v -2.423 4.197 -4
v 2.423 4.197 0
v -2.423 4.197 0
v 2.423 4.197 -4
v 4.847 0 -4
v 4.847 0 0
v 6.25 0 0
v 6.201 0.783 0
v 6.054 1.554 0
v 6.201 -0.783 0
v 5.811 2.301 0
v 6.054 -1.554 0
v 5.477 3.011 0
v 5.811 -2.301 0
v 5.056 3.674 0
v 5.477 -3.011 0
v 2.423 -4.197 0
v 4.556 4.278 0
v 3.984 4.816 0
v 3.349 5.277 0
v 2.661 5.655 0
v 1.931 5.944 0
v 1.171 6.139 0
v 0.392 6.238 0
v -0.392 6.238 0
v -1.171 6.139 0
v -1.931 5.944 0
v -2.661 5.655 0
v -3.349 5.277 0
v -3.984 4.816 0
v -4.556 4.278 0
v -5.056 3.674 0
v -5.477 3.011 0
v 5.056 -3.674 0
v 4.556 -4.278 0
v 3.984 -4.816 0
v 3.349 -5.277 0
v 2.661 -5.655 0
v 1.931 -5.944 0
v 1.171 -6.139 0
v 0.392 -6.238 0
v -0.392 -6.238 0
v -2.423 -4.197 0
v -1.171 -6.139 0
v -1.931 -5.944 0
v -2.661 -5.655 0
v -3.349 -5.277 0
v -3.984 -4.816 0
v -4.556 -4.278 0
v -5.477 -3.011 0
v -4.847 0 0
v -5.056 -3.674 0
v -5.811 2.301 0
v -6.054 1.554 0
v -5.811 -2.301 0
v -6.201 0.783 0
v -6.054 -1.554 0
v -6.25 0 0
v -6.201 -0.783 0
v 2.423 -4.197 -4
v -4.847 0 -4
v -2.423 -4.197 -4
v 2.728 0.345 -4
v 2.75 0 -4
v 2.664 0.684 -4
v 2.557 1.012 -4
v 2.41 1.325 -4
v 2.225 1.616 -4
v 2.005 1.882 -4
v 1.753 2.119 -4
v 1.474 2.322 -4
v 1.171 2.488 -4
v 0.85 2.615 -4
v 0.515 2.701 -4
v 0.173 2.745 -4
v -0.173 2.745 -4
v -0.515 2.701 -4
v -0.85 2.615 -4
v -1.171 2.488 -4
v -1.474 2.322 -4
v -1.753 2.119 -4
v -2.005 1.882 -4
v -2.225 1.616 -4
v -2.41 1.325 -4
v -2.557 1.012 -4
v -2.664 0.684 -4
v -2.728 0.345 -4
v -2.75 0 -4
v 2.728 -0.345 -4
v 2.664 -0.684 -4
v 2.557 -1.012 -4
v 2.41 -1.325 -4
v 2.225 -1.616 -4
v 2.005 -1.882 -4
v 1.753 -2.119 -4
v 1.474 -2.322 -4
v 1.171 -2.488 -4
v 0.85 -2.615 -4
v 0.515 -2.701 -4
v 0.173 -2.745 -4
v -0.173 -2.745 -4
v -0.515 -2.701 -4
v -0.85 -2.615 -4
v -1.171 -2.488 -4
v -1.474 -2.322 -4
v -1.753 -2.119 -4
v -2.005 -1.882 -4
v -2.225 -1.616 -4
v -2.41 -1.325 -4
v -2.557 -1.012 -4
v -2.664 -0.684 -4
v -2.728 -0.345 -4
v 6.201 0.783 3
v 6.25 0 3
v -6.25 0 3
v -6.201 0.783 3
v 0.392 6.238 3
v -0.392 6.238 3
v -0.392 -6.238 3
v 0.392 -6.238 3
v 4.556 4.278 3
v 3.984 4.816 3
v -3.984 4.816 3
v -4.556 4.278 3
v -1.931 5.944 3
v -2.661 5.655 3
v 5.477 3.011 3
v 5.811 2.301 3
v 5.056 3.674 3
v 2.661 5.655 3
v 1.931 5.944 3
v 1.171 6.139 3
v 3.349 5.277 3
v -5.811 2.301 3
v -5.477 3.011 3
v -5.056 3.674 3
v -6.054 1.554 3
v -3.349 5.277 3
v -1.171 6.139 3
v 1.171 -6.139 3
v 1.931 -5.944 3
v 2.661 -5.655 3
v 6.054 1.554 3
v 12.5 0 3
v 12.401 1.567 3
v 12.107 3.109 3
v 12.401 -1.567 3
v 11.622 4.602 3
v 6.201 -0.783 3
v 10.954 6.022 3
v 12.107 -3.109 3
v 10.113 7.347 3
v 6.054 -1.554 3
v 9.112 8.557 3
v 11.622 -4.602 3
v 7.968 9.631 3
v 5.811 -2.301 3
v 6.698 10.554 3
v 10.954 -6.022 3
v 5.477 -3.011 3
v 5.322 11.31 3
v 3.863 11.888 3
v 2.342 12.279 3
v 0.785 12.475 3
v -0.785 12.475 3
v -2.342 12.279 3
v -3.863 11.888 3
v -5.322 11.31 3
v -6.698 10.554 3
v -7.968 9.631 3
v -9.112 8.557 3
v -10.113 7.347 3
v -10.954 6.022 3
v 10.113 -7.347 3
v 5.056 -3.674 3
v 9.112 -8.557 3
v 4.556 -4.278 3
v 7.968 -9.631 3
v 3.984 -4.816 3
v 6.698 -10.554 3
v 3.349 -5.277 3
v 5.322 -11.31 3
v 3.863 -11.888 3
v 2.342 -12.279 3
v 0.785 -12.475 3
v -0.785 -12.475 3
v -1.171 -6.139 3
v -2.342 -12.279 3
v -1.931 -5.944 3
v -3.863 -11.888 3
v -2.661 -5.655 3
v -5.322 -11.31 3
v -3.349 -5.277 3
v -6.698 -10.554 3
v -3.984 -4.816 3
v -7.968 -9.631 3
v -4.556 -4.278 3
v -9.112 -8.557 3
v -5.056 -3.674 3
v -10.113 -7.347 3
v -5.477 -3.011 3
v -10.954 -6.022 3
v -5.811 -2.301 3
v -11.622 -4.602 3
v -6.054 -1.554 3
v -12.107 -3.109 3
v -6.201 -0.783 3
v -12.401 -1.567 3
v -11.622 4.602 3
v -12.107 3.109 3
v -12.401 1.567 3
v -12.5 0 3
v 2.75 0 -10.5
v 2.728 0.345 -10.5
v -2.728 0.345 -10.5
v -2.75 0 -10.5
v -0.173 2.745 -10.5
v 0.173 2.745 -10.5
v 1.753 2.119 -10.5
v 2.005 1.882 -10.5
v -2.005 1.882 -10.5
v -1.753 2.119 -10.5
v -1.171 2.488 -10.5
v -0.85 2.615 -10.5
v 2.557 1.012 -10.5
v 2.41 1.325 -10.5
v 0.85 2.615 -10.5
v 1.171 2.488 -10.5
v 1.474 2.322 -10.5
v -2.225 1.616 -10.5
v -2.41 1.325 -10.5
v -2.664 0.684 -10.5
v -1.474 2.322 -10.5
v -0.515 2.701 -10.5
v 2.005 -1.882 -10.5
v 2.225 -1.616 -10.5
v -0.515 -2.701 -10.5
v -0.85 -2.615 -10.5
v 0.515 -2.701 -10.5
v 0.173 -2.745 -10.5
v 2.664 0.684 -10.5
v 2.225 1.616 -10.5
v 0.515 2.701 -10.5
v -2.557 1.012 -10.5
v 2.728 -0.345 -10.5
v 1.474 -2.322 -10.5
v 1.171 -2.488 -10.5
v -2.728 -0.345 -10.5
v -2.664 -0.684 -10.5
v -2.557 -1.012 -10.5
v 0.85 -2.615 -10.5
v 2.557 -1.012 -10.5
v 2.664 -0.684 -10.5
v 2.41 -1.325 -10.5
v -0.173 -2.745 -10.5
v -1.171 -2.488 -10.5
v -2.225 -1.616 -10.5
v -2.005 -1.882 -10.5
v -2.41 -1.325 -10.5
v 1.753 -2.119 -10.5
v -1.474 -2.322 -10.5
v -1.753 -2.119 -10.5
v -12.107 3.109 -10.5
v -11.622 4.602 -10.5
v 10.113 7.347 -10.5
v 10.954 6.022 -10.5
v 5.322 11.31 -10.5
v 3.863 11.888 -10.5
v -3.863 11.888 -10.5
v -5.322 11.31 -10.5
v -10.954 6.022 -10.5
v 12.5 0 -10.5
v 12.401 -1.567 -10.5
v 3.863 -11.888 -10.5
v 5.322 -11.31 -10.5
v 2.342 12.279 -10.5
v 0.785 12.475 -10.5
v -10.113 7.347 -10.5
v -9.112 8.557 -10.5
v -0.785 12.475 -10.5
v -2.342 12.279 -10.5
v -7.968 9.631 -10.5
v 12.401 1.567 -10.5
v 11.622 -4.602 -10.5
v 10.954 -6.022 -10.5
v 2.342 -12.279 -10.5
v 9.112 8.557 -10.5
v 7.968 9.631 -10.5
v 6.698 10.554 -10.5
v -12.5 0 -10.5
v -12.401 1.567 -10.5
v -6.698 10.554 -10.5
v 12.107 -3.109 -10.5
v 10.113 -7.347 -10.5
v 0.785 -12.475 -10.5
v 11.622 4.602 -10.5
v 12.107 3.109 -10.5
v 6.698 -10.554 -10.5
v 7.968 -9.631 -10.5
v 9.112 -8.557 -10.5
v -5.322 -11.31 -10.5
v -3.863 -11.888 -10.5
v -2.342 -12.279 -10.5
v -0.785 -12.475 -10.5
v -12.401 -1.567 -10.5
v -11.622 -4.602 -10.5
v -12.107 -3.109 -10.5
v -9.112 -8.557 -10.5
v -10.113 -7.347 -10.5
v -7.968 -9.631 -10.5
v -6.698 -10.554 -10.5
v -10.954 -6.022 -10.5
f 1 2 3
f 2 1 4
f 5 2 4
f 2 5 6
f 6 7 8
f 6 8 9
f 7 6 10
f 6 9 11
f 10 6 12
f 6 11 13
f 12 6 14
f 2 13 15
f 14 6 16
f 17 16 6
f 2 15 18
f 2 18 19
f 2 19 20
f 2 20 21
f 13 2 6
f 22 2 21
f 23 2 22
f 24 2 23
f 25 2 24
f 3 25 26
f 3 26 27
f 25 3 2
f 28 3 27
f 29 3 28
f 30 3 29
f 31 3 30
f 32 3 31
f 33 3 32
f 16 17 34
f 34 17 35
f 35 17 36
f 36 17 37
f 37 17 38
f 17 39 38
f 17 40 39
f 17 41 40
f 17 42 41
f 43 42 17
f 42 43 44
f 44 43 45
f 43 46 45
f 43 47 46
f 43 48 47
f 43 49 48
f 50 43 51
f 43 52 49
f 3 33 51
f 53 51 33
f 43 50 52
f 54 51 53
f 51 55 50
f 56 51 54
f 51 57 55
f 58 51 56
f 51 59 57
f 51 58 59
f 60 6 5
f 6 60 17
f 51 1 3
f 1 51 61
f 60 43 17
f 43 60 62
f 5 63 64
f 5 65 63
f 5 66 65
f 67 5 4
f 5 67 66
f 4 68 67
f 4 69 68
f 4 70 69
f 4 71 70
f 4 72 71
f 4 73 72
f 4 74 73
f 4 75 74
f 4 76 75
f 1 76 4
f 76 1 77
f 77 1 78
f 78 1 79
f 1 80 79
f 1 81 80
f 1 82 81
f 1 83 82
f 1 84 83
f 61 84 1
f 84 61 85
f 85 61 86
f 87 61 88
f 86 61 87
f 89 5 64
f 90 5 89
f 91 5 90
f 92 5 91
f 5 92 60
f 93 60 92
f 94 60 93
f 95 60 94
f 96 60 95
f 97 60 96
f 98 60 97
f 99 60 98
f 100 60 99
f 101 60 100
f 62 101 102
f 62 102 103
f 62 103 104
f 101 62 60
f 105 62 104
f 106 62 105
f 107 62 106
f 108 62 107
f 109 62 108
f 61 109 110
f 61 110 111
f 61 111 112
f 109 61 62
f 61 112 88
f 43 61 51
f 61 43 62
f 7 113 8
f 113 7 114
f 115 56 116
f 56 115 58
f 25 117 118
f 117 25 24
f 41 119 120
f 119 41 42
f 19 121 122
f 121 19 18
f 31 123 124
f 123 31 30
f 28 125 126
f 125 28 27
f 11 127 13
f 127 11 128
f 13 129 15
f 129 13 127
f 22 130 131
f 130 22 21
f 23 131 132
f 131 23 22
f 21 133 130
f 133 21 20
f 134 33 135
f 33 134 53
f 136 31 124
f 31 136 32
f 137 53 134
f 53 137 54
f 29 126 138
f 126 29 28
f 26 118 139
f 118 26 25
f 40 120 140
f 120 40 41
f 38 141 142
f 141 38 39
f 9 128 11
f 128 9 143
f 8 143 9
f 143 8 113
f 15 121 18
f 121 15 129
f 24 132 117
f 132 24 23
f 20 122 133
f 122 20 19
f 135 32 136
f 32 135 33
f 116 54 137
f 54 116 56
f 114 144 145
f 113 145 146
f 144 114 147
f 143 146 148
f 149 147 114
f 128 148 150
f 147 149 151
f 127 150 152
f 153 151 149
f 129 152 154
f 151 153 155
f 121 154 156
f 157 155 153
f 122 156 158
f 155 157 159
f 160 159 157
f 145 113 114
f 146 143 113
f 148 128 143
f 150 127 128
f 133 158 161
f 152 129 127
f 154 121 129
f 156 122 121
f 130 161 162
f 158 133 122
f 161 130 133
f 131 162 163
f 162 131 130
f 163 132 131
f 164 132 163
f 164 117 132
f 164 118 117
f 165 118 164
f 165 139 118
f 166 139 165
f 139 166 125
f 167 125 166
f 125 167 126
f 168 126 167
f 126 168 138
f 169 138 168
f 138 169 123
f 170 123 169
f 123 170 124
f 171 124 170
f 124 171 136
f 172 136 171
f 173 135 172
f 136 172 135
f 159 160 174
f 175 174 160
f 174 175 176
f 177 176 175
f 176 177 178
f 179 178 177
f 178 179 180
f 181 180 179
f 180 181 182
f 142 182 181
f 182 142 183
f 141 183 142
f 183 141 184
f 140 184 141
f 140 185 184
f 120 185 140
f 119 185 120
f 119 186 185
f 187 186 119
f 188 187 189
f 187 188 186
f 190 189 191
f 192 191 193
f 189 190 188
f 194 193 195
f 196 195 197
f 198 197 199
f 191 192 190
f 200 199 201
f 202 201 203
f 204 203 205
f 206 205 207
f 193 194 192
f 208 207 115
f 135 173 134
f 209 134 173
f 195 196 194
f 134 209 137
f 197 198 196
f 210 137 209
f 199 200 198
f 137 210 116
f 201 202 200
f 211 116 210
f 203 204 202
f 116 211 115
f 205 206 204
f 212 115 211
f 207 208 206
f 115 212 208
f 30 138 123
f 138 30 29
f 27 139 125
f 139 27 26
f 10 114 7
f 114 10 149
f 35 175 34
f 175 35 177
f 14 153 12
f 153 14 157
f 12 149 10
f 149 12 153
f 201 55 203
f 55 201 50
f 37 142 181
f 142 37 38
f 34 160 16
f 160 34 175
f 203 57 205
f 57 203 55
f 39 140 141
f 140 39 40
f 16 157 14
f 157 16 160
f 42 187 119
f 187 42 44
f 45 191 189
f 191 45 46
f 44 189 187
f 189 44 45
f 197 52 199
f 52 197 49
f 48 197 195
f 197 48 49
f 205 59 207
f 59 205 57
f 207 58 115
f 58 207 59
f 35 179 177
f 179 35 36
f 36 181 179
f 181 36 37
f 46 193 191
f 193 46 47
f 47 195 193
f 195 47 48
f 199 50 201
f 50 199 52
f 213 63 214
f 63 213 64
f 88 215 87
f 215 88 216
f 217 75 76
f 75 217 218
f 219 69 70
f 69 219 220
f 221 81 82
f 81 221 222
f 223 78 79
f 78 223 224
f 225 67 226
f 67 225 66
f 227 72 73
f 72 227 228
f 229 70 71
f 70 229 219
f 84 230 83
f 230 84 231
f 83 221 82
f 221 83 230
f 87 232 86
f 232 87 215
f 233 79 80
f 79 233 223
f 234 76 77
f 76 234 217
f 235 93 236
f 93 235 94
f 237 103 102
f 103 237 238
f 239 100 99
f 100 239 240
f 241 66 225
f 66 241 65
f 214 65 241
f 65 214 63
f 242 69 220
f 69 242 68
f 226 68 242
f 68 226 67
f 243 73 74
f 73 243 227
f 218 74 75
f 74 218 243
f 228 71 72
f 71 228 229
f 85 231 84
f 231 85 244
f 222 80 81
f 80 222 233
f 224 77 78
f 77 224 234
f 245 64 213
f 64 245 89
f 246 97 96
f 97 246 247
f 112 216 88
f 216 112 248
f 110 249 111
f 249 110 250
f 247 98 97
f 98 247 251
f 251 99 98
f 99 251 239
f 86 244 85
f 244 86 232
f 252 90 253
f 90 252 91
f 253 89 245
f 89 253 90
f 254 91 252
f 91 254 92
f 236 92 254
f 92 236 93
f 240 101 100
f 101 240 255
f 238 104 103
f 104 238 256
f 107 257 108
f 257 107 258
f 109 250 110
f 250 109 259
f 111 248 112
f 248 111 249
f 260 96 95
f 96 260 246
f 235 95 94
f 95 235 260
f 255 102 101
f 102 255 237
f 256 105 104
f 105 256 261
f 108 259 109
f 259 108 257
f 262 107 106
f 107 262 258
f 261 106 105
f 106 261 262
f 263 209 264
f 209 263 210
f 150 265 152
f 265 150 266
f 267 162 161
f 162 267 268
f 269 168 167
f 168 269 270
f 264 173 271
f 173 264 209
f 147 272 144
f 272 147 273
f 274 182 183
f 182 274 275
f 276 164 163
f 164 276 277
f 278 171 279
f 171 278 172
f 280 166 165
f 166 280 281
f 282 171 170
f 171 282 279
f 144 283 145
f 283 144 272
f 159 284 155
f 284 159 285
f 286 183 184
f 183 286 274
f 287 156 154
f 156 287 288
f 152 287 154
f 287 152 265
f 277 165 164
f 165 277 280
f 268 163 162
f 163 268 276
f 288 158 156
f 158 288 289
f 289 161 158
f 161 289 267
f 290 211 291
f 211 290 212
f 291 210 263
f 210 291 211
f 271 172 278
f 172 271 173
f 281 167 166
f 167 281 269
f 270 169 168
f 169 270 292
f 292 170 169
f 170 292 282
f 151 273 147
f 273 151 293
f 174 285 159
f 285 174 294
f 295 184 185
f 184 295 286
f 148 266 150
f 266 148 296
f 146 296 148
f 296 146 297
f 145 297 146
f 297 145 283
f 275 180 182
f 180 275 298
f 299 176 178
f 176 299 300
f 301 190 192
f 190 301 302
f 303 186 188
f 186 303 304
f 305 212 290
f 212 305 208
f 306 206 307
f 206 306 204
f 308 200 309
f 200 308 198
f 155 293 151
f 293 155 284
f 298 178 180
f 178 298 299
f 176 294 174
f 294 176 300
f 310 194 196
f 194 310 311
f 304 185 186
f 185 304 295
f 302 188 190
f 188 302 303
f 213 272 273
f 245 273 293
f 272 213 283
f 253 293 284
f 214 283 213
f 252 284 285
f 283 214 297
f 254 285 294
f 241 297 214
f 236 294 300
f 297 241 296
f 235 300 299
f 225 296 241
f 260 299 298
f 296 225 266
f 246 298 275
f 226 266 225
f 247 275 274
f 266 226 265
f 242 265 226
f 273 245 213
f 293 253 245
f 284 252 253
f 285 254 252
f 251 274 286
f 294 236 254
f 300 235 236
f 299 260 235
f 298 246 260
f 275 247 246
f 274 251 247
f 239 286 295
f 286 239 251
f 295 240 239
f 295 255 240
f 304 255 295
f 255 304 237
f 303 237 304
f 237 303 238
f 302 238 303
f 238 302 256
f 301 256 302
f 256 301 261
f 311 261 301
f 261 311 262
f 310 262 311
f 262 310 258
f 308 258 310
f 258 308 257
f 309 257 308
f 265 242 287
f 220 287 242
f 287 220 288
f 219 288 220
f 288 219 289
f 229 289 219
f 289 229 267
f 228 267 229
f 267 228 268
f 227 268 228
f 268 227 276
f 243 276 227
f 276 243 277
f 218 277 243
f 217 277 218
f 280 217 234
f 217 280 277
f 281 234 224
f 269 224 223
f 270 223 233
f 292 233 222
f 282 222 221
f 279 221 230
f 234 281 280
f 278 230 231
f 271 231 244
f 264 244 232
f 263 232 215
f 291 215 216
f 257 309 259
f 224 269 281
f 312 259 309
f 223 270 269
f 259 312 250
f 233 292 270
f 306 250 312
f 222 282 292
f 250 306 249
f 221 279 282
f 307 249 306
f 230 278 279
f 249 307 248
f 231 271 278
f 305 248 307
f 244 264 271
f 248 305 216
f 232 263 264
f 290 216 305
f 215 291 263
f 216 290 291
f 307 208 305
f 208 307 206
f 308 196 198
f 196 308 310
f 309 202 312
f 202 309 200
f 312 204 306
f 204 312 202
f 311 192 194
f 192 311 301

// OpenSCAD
$fn = 50;

difference() {
	union() {
		translate(v = [0, 0, -10.5]) {
			cylinder(h = 13.5, r = 12.5);
		}
	}
	union() {
		translate(v = [0, 0, 0]) {
			rotate(a = [0, 0, 0]) {
				difference() {
					union() {
						translate(v = [0, 0, -4]) {
							linear_extrude(height = 4) {
								polygon(points = [[4.8468, 0.0], [2.4234000000000004, 4.197451927062417], [-2.423399999999999, 4.197451927062417], [-4.8468, 5.935618106107392e-16], [-2.423400000000002, -4.197451927062416], [2.423399999999997, -4.197451927062419]]);
							}
						}
					}
					union();
				}
			}
		}
		#cylinder(h = 3, r = 6.25);
		#translate(v = [0, 0, -100.0]) {
			cylinder(h = 200, r = 2.75);
		}
	}
}
